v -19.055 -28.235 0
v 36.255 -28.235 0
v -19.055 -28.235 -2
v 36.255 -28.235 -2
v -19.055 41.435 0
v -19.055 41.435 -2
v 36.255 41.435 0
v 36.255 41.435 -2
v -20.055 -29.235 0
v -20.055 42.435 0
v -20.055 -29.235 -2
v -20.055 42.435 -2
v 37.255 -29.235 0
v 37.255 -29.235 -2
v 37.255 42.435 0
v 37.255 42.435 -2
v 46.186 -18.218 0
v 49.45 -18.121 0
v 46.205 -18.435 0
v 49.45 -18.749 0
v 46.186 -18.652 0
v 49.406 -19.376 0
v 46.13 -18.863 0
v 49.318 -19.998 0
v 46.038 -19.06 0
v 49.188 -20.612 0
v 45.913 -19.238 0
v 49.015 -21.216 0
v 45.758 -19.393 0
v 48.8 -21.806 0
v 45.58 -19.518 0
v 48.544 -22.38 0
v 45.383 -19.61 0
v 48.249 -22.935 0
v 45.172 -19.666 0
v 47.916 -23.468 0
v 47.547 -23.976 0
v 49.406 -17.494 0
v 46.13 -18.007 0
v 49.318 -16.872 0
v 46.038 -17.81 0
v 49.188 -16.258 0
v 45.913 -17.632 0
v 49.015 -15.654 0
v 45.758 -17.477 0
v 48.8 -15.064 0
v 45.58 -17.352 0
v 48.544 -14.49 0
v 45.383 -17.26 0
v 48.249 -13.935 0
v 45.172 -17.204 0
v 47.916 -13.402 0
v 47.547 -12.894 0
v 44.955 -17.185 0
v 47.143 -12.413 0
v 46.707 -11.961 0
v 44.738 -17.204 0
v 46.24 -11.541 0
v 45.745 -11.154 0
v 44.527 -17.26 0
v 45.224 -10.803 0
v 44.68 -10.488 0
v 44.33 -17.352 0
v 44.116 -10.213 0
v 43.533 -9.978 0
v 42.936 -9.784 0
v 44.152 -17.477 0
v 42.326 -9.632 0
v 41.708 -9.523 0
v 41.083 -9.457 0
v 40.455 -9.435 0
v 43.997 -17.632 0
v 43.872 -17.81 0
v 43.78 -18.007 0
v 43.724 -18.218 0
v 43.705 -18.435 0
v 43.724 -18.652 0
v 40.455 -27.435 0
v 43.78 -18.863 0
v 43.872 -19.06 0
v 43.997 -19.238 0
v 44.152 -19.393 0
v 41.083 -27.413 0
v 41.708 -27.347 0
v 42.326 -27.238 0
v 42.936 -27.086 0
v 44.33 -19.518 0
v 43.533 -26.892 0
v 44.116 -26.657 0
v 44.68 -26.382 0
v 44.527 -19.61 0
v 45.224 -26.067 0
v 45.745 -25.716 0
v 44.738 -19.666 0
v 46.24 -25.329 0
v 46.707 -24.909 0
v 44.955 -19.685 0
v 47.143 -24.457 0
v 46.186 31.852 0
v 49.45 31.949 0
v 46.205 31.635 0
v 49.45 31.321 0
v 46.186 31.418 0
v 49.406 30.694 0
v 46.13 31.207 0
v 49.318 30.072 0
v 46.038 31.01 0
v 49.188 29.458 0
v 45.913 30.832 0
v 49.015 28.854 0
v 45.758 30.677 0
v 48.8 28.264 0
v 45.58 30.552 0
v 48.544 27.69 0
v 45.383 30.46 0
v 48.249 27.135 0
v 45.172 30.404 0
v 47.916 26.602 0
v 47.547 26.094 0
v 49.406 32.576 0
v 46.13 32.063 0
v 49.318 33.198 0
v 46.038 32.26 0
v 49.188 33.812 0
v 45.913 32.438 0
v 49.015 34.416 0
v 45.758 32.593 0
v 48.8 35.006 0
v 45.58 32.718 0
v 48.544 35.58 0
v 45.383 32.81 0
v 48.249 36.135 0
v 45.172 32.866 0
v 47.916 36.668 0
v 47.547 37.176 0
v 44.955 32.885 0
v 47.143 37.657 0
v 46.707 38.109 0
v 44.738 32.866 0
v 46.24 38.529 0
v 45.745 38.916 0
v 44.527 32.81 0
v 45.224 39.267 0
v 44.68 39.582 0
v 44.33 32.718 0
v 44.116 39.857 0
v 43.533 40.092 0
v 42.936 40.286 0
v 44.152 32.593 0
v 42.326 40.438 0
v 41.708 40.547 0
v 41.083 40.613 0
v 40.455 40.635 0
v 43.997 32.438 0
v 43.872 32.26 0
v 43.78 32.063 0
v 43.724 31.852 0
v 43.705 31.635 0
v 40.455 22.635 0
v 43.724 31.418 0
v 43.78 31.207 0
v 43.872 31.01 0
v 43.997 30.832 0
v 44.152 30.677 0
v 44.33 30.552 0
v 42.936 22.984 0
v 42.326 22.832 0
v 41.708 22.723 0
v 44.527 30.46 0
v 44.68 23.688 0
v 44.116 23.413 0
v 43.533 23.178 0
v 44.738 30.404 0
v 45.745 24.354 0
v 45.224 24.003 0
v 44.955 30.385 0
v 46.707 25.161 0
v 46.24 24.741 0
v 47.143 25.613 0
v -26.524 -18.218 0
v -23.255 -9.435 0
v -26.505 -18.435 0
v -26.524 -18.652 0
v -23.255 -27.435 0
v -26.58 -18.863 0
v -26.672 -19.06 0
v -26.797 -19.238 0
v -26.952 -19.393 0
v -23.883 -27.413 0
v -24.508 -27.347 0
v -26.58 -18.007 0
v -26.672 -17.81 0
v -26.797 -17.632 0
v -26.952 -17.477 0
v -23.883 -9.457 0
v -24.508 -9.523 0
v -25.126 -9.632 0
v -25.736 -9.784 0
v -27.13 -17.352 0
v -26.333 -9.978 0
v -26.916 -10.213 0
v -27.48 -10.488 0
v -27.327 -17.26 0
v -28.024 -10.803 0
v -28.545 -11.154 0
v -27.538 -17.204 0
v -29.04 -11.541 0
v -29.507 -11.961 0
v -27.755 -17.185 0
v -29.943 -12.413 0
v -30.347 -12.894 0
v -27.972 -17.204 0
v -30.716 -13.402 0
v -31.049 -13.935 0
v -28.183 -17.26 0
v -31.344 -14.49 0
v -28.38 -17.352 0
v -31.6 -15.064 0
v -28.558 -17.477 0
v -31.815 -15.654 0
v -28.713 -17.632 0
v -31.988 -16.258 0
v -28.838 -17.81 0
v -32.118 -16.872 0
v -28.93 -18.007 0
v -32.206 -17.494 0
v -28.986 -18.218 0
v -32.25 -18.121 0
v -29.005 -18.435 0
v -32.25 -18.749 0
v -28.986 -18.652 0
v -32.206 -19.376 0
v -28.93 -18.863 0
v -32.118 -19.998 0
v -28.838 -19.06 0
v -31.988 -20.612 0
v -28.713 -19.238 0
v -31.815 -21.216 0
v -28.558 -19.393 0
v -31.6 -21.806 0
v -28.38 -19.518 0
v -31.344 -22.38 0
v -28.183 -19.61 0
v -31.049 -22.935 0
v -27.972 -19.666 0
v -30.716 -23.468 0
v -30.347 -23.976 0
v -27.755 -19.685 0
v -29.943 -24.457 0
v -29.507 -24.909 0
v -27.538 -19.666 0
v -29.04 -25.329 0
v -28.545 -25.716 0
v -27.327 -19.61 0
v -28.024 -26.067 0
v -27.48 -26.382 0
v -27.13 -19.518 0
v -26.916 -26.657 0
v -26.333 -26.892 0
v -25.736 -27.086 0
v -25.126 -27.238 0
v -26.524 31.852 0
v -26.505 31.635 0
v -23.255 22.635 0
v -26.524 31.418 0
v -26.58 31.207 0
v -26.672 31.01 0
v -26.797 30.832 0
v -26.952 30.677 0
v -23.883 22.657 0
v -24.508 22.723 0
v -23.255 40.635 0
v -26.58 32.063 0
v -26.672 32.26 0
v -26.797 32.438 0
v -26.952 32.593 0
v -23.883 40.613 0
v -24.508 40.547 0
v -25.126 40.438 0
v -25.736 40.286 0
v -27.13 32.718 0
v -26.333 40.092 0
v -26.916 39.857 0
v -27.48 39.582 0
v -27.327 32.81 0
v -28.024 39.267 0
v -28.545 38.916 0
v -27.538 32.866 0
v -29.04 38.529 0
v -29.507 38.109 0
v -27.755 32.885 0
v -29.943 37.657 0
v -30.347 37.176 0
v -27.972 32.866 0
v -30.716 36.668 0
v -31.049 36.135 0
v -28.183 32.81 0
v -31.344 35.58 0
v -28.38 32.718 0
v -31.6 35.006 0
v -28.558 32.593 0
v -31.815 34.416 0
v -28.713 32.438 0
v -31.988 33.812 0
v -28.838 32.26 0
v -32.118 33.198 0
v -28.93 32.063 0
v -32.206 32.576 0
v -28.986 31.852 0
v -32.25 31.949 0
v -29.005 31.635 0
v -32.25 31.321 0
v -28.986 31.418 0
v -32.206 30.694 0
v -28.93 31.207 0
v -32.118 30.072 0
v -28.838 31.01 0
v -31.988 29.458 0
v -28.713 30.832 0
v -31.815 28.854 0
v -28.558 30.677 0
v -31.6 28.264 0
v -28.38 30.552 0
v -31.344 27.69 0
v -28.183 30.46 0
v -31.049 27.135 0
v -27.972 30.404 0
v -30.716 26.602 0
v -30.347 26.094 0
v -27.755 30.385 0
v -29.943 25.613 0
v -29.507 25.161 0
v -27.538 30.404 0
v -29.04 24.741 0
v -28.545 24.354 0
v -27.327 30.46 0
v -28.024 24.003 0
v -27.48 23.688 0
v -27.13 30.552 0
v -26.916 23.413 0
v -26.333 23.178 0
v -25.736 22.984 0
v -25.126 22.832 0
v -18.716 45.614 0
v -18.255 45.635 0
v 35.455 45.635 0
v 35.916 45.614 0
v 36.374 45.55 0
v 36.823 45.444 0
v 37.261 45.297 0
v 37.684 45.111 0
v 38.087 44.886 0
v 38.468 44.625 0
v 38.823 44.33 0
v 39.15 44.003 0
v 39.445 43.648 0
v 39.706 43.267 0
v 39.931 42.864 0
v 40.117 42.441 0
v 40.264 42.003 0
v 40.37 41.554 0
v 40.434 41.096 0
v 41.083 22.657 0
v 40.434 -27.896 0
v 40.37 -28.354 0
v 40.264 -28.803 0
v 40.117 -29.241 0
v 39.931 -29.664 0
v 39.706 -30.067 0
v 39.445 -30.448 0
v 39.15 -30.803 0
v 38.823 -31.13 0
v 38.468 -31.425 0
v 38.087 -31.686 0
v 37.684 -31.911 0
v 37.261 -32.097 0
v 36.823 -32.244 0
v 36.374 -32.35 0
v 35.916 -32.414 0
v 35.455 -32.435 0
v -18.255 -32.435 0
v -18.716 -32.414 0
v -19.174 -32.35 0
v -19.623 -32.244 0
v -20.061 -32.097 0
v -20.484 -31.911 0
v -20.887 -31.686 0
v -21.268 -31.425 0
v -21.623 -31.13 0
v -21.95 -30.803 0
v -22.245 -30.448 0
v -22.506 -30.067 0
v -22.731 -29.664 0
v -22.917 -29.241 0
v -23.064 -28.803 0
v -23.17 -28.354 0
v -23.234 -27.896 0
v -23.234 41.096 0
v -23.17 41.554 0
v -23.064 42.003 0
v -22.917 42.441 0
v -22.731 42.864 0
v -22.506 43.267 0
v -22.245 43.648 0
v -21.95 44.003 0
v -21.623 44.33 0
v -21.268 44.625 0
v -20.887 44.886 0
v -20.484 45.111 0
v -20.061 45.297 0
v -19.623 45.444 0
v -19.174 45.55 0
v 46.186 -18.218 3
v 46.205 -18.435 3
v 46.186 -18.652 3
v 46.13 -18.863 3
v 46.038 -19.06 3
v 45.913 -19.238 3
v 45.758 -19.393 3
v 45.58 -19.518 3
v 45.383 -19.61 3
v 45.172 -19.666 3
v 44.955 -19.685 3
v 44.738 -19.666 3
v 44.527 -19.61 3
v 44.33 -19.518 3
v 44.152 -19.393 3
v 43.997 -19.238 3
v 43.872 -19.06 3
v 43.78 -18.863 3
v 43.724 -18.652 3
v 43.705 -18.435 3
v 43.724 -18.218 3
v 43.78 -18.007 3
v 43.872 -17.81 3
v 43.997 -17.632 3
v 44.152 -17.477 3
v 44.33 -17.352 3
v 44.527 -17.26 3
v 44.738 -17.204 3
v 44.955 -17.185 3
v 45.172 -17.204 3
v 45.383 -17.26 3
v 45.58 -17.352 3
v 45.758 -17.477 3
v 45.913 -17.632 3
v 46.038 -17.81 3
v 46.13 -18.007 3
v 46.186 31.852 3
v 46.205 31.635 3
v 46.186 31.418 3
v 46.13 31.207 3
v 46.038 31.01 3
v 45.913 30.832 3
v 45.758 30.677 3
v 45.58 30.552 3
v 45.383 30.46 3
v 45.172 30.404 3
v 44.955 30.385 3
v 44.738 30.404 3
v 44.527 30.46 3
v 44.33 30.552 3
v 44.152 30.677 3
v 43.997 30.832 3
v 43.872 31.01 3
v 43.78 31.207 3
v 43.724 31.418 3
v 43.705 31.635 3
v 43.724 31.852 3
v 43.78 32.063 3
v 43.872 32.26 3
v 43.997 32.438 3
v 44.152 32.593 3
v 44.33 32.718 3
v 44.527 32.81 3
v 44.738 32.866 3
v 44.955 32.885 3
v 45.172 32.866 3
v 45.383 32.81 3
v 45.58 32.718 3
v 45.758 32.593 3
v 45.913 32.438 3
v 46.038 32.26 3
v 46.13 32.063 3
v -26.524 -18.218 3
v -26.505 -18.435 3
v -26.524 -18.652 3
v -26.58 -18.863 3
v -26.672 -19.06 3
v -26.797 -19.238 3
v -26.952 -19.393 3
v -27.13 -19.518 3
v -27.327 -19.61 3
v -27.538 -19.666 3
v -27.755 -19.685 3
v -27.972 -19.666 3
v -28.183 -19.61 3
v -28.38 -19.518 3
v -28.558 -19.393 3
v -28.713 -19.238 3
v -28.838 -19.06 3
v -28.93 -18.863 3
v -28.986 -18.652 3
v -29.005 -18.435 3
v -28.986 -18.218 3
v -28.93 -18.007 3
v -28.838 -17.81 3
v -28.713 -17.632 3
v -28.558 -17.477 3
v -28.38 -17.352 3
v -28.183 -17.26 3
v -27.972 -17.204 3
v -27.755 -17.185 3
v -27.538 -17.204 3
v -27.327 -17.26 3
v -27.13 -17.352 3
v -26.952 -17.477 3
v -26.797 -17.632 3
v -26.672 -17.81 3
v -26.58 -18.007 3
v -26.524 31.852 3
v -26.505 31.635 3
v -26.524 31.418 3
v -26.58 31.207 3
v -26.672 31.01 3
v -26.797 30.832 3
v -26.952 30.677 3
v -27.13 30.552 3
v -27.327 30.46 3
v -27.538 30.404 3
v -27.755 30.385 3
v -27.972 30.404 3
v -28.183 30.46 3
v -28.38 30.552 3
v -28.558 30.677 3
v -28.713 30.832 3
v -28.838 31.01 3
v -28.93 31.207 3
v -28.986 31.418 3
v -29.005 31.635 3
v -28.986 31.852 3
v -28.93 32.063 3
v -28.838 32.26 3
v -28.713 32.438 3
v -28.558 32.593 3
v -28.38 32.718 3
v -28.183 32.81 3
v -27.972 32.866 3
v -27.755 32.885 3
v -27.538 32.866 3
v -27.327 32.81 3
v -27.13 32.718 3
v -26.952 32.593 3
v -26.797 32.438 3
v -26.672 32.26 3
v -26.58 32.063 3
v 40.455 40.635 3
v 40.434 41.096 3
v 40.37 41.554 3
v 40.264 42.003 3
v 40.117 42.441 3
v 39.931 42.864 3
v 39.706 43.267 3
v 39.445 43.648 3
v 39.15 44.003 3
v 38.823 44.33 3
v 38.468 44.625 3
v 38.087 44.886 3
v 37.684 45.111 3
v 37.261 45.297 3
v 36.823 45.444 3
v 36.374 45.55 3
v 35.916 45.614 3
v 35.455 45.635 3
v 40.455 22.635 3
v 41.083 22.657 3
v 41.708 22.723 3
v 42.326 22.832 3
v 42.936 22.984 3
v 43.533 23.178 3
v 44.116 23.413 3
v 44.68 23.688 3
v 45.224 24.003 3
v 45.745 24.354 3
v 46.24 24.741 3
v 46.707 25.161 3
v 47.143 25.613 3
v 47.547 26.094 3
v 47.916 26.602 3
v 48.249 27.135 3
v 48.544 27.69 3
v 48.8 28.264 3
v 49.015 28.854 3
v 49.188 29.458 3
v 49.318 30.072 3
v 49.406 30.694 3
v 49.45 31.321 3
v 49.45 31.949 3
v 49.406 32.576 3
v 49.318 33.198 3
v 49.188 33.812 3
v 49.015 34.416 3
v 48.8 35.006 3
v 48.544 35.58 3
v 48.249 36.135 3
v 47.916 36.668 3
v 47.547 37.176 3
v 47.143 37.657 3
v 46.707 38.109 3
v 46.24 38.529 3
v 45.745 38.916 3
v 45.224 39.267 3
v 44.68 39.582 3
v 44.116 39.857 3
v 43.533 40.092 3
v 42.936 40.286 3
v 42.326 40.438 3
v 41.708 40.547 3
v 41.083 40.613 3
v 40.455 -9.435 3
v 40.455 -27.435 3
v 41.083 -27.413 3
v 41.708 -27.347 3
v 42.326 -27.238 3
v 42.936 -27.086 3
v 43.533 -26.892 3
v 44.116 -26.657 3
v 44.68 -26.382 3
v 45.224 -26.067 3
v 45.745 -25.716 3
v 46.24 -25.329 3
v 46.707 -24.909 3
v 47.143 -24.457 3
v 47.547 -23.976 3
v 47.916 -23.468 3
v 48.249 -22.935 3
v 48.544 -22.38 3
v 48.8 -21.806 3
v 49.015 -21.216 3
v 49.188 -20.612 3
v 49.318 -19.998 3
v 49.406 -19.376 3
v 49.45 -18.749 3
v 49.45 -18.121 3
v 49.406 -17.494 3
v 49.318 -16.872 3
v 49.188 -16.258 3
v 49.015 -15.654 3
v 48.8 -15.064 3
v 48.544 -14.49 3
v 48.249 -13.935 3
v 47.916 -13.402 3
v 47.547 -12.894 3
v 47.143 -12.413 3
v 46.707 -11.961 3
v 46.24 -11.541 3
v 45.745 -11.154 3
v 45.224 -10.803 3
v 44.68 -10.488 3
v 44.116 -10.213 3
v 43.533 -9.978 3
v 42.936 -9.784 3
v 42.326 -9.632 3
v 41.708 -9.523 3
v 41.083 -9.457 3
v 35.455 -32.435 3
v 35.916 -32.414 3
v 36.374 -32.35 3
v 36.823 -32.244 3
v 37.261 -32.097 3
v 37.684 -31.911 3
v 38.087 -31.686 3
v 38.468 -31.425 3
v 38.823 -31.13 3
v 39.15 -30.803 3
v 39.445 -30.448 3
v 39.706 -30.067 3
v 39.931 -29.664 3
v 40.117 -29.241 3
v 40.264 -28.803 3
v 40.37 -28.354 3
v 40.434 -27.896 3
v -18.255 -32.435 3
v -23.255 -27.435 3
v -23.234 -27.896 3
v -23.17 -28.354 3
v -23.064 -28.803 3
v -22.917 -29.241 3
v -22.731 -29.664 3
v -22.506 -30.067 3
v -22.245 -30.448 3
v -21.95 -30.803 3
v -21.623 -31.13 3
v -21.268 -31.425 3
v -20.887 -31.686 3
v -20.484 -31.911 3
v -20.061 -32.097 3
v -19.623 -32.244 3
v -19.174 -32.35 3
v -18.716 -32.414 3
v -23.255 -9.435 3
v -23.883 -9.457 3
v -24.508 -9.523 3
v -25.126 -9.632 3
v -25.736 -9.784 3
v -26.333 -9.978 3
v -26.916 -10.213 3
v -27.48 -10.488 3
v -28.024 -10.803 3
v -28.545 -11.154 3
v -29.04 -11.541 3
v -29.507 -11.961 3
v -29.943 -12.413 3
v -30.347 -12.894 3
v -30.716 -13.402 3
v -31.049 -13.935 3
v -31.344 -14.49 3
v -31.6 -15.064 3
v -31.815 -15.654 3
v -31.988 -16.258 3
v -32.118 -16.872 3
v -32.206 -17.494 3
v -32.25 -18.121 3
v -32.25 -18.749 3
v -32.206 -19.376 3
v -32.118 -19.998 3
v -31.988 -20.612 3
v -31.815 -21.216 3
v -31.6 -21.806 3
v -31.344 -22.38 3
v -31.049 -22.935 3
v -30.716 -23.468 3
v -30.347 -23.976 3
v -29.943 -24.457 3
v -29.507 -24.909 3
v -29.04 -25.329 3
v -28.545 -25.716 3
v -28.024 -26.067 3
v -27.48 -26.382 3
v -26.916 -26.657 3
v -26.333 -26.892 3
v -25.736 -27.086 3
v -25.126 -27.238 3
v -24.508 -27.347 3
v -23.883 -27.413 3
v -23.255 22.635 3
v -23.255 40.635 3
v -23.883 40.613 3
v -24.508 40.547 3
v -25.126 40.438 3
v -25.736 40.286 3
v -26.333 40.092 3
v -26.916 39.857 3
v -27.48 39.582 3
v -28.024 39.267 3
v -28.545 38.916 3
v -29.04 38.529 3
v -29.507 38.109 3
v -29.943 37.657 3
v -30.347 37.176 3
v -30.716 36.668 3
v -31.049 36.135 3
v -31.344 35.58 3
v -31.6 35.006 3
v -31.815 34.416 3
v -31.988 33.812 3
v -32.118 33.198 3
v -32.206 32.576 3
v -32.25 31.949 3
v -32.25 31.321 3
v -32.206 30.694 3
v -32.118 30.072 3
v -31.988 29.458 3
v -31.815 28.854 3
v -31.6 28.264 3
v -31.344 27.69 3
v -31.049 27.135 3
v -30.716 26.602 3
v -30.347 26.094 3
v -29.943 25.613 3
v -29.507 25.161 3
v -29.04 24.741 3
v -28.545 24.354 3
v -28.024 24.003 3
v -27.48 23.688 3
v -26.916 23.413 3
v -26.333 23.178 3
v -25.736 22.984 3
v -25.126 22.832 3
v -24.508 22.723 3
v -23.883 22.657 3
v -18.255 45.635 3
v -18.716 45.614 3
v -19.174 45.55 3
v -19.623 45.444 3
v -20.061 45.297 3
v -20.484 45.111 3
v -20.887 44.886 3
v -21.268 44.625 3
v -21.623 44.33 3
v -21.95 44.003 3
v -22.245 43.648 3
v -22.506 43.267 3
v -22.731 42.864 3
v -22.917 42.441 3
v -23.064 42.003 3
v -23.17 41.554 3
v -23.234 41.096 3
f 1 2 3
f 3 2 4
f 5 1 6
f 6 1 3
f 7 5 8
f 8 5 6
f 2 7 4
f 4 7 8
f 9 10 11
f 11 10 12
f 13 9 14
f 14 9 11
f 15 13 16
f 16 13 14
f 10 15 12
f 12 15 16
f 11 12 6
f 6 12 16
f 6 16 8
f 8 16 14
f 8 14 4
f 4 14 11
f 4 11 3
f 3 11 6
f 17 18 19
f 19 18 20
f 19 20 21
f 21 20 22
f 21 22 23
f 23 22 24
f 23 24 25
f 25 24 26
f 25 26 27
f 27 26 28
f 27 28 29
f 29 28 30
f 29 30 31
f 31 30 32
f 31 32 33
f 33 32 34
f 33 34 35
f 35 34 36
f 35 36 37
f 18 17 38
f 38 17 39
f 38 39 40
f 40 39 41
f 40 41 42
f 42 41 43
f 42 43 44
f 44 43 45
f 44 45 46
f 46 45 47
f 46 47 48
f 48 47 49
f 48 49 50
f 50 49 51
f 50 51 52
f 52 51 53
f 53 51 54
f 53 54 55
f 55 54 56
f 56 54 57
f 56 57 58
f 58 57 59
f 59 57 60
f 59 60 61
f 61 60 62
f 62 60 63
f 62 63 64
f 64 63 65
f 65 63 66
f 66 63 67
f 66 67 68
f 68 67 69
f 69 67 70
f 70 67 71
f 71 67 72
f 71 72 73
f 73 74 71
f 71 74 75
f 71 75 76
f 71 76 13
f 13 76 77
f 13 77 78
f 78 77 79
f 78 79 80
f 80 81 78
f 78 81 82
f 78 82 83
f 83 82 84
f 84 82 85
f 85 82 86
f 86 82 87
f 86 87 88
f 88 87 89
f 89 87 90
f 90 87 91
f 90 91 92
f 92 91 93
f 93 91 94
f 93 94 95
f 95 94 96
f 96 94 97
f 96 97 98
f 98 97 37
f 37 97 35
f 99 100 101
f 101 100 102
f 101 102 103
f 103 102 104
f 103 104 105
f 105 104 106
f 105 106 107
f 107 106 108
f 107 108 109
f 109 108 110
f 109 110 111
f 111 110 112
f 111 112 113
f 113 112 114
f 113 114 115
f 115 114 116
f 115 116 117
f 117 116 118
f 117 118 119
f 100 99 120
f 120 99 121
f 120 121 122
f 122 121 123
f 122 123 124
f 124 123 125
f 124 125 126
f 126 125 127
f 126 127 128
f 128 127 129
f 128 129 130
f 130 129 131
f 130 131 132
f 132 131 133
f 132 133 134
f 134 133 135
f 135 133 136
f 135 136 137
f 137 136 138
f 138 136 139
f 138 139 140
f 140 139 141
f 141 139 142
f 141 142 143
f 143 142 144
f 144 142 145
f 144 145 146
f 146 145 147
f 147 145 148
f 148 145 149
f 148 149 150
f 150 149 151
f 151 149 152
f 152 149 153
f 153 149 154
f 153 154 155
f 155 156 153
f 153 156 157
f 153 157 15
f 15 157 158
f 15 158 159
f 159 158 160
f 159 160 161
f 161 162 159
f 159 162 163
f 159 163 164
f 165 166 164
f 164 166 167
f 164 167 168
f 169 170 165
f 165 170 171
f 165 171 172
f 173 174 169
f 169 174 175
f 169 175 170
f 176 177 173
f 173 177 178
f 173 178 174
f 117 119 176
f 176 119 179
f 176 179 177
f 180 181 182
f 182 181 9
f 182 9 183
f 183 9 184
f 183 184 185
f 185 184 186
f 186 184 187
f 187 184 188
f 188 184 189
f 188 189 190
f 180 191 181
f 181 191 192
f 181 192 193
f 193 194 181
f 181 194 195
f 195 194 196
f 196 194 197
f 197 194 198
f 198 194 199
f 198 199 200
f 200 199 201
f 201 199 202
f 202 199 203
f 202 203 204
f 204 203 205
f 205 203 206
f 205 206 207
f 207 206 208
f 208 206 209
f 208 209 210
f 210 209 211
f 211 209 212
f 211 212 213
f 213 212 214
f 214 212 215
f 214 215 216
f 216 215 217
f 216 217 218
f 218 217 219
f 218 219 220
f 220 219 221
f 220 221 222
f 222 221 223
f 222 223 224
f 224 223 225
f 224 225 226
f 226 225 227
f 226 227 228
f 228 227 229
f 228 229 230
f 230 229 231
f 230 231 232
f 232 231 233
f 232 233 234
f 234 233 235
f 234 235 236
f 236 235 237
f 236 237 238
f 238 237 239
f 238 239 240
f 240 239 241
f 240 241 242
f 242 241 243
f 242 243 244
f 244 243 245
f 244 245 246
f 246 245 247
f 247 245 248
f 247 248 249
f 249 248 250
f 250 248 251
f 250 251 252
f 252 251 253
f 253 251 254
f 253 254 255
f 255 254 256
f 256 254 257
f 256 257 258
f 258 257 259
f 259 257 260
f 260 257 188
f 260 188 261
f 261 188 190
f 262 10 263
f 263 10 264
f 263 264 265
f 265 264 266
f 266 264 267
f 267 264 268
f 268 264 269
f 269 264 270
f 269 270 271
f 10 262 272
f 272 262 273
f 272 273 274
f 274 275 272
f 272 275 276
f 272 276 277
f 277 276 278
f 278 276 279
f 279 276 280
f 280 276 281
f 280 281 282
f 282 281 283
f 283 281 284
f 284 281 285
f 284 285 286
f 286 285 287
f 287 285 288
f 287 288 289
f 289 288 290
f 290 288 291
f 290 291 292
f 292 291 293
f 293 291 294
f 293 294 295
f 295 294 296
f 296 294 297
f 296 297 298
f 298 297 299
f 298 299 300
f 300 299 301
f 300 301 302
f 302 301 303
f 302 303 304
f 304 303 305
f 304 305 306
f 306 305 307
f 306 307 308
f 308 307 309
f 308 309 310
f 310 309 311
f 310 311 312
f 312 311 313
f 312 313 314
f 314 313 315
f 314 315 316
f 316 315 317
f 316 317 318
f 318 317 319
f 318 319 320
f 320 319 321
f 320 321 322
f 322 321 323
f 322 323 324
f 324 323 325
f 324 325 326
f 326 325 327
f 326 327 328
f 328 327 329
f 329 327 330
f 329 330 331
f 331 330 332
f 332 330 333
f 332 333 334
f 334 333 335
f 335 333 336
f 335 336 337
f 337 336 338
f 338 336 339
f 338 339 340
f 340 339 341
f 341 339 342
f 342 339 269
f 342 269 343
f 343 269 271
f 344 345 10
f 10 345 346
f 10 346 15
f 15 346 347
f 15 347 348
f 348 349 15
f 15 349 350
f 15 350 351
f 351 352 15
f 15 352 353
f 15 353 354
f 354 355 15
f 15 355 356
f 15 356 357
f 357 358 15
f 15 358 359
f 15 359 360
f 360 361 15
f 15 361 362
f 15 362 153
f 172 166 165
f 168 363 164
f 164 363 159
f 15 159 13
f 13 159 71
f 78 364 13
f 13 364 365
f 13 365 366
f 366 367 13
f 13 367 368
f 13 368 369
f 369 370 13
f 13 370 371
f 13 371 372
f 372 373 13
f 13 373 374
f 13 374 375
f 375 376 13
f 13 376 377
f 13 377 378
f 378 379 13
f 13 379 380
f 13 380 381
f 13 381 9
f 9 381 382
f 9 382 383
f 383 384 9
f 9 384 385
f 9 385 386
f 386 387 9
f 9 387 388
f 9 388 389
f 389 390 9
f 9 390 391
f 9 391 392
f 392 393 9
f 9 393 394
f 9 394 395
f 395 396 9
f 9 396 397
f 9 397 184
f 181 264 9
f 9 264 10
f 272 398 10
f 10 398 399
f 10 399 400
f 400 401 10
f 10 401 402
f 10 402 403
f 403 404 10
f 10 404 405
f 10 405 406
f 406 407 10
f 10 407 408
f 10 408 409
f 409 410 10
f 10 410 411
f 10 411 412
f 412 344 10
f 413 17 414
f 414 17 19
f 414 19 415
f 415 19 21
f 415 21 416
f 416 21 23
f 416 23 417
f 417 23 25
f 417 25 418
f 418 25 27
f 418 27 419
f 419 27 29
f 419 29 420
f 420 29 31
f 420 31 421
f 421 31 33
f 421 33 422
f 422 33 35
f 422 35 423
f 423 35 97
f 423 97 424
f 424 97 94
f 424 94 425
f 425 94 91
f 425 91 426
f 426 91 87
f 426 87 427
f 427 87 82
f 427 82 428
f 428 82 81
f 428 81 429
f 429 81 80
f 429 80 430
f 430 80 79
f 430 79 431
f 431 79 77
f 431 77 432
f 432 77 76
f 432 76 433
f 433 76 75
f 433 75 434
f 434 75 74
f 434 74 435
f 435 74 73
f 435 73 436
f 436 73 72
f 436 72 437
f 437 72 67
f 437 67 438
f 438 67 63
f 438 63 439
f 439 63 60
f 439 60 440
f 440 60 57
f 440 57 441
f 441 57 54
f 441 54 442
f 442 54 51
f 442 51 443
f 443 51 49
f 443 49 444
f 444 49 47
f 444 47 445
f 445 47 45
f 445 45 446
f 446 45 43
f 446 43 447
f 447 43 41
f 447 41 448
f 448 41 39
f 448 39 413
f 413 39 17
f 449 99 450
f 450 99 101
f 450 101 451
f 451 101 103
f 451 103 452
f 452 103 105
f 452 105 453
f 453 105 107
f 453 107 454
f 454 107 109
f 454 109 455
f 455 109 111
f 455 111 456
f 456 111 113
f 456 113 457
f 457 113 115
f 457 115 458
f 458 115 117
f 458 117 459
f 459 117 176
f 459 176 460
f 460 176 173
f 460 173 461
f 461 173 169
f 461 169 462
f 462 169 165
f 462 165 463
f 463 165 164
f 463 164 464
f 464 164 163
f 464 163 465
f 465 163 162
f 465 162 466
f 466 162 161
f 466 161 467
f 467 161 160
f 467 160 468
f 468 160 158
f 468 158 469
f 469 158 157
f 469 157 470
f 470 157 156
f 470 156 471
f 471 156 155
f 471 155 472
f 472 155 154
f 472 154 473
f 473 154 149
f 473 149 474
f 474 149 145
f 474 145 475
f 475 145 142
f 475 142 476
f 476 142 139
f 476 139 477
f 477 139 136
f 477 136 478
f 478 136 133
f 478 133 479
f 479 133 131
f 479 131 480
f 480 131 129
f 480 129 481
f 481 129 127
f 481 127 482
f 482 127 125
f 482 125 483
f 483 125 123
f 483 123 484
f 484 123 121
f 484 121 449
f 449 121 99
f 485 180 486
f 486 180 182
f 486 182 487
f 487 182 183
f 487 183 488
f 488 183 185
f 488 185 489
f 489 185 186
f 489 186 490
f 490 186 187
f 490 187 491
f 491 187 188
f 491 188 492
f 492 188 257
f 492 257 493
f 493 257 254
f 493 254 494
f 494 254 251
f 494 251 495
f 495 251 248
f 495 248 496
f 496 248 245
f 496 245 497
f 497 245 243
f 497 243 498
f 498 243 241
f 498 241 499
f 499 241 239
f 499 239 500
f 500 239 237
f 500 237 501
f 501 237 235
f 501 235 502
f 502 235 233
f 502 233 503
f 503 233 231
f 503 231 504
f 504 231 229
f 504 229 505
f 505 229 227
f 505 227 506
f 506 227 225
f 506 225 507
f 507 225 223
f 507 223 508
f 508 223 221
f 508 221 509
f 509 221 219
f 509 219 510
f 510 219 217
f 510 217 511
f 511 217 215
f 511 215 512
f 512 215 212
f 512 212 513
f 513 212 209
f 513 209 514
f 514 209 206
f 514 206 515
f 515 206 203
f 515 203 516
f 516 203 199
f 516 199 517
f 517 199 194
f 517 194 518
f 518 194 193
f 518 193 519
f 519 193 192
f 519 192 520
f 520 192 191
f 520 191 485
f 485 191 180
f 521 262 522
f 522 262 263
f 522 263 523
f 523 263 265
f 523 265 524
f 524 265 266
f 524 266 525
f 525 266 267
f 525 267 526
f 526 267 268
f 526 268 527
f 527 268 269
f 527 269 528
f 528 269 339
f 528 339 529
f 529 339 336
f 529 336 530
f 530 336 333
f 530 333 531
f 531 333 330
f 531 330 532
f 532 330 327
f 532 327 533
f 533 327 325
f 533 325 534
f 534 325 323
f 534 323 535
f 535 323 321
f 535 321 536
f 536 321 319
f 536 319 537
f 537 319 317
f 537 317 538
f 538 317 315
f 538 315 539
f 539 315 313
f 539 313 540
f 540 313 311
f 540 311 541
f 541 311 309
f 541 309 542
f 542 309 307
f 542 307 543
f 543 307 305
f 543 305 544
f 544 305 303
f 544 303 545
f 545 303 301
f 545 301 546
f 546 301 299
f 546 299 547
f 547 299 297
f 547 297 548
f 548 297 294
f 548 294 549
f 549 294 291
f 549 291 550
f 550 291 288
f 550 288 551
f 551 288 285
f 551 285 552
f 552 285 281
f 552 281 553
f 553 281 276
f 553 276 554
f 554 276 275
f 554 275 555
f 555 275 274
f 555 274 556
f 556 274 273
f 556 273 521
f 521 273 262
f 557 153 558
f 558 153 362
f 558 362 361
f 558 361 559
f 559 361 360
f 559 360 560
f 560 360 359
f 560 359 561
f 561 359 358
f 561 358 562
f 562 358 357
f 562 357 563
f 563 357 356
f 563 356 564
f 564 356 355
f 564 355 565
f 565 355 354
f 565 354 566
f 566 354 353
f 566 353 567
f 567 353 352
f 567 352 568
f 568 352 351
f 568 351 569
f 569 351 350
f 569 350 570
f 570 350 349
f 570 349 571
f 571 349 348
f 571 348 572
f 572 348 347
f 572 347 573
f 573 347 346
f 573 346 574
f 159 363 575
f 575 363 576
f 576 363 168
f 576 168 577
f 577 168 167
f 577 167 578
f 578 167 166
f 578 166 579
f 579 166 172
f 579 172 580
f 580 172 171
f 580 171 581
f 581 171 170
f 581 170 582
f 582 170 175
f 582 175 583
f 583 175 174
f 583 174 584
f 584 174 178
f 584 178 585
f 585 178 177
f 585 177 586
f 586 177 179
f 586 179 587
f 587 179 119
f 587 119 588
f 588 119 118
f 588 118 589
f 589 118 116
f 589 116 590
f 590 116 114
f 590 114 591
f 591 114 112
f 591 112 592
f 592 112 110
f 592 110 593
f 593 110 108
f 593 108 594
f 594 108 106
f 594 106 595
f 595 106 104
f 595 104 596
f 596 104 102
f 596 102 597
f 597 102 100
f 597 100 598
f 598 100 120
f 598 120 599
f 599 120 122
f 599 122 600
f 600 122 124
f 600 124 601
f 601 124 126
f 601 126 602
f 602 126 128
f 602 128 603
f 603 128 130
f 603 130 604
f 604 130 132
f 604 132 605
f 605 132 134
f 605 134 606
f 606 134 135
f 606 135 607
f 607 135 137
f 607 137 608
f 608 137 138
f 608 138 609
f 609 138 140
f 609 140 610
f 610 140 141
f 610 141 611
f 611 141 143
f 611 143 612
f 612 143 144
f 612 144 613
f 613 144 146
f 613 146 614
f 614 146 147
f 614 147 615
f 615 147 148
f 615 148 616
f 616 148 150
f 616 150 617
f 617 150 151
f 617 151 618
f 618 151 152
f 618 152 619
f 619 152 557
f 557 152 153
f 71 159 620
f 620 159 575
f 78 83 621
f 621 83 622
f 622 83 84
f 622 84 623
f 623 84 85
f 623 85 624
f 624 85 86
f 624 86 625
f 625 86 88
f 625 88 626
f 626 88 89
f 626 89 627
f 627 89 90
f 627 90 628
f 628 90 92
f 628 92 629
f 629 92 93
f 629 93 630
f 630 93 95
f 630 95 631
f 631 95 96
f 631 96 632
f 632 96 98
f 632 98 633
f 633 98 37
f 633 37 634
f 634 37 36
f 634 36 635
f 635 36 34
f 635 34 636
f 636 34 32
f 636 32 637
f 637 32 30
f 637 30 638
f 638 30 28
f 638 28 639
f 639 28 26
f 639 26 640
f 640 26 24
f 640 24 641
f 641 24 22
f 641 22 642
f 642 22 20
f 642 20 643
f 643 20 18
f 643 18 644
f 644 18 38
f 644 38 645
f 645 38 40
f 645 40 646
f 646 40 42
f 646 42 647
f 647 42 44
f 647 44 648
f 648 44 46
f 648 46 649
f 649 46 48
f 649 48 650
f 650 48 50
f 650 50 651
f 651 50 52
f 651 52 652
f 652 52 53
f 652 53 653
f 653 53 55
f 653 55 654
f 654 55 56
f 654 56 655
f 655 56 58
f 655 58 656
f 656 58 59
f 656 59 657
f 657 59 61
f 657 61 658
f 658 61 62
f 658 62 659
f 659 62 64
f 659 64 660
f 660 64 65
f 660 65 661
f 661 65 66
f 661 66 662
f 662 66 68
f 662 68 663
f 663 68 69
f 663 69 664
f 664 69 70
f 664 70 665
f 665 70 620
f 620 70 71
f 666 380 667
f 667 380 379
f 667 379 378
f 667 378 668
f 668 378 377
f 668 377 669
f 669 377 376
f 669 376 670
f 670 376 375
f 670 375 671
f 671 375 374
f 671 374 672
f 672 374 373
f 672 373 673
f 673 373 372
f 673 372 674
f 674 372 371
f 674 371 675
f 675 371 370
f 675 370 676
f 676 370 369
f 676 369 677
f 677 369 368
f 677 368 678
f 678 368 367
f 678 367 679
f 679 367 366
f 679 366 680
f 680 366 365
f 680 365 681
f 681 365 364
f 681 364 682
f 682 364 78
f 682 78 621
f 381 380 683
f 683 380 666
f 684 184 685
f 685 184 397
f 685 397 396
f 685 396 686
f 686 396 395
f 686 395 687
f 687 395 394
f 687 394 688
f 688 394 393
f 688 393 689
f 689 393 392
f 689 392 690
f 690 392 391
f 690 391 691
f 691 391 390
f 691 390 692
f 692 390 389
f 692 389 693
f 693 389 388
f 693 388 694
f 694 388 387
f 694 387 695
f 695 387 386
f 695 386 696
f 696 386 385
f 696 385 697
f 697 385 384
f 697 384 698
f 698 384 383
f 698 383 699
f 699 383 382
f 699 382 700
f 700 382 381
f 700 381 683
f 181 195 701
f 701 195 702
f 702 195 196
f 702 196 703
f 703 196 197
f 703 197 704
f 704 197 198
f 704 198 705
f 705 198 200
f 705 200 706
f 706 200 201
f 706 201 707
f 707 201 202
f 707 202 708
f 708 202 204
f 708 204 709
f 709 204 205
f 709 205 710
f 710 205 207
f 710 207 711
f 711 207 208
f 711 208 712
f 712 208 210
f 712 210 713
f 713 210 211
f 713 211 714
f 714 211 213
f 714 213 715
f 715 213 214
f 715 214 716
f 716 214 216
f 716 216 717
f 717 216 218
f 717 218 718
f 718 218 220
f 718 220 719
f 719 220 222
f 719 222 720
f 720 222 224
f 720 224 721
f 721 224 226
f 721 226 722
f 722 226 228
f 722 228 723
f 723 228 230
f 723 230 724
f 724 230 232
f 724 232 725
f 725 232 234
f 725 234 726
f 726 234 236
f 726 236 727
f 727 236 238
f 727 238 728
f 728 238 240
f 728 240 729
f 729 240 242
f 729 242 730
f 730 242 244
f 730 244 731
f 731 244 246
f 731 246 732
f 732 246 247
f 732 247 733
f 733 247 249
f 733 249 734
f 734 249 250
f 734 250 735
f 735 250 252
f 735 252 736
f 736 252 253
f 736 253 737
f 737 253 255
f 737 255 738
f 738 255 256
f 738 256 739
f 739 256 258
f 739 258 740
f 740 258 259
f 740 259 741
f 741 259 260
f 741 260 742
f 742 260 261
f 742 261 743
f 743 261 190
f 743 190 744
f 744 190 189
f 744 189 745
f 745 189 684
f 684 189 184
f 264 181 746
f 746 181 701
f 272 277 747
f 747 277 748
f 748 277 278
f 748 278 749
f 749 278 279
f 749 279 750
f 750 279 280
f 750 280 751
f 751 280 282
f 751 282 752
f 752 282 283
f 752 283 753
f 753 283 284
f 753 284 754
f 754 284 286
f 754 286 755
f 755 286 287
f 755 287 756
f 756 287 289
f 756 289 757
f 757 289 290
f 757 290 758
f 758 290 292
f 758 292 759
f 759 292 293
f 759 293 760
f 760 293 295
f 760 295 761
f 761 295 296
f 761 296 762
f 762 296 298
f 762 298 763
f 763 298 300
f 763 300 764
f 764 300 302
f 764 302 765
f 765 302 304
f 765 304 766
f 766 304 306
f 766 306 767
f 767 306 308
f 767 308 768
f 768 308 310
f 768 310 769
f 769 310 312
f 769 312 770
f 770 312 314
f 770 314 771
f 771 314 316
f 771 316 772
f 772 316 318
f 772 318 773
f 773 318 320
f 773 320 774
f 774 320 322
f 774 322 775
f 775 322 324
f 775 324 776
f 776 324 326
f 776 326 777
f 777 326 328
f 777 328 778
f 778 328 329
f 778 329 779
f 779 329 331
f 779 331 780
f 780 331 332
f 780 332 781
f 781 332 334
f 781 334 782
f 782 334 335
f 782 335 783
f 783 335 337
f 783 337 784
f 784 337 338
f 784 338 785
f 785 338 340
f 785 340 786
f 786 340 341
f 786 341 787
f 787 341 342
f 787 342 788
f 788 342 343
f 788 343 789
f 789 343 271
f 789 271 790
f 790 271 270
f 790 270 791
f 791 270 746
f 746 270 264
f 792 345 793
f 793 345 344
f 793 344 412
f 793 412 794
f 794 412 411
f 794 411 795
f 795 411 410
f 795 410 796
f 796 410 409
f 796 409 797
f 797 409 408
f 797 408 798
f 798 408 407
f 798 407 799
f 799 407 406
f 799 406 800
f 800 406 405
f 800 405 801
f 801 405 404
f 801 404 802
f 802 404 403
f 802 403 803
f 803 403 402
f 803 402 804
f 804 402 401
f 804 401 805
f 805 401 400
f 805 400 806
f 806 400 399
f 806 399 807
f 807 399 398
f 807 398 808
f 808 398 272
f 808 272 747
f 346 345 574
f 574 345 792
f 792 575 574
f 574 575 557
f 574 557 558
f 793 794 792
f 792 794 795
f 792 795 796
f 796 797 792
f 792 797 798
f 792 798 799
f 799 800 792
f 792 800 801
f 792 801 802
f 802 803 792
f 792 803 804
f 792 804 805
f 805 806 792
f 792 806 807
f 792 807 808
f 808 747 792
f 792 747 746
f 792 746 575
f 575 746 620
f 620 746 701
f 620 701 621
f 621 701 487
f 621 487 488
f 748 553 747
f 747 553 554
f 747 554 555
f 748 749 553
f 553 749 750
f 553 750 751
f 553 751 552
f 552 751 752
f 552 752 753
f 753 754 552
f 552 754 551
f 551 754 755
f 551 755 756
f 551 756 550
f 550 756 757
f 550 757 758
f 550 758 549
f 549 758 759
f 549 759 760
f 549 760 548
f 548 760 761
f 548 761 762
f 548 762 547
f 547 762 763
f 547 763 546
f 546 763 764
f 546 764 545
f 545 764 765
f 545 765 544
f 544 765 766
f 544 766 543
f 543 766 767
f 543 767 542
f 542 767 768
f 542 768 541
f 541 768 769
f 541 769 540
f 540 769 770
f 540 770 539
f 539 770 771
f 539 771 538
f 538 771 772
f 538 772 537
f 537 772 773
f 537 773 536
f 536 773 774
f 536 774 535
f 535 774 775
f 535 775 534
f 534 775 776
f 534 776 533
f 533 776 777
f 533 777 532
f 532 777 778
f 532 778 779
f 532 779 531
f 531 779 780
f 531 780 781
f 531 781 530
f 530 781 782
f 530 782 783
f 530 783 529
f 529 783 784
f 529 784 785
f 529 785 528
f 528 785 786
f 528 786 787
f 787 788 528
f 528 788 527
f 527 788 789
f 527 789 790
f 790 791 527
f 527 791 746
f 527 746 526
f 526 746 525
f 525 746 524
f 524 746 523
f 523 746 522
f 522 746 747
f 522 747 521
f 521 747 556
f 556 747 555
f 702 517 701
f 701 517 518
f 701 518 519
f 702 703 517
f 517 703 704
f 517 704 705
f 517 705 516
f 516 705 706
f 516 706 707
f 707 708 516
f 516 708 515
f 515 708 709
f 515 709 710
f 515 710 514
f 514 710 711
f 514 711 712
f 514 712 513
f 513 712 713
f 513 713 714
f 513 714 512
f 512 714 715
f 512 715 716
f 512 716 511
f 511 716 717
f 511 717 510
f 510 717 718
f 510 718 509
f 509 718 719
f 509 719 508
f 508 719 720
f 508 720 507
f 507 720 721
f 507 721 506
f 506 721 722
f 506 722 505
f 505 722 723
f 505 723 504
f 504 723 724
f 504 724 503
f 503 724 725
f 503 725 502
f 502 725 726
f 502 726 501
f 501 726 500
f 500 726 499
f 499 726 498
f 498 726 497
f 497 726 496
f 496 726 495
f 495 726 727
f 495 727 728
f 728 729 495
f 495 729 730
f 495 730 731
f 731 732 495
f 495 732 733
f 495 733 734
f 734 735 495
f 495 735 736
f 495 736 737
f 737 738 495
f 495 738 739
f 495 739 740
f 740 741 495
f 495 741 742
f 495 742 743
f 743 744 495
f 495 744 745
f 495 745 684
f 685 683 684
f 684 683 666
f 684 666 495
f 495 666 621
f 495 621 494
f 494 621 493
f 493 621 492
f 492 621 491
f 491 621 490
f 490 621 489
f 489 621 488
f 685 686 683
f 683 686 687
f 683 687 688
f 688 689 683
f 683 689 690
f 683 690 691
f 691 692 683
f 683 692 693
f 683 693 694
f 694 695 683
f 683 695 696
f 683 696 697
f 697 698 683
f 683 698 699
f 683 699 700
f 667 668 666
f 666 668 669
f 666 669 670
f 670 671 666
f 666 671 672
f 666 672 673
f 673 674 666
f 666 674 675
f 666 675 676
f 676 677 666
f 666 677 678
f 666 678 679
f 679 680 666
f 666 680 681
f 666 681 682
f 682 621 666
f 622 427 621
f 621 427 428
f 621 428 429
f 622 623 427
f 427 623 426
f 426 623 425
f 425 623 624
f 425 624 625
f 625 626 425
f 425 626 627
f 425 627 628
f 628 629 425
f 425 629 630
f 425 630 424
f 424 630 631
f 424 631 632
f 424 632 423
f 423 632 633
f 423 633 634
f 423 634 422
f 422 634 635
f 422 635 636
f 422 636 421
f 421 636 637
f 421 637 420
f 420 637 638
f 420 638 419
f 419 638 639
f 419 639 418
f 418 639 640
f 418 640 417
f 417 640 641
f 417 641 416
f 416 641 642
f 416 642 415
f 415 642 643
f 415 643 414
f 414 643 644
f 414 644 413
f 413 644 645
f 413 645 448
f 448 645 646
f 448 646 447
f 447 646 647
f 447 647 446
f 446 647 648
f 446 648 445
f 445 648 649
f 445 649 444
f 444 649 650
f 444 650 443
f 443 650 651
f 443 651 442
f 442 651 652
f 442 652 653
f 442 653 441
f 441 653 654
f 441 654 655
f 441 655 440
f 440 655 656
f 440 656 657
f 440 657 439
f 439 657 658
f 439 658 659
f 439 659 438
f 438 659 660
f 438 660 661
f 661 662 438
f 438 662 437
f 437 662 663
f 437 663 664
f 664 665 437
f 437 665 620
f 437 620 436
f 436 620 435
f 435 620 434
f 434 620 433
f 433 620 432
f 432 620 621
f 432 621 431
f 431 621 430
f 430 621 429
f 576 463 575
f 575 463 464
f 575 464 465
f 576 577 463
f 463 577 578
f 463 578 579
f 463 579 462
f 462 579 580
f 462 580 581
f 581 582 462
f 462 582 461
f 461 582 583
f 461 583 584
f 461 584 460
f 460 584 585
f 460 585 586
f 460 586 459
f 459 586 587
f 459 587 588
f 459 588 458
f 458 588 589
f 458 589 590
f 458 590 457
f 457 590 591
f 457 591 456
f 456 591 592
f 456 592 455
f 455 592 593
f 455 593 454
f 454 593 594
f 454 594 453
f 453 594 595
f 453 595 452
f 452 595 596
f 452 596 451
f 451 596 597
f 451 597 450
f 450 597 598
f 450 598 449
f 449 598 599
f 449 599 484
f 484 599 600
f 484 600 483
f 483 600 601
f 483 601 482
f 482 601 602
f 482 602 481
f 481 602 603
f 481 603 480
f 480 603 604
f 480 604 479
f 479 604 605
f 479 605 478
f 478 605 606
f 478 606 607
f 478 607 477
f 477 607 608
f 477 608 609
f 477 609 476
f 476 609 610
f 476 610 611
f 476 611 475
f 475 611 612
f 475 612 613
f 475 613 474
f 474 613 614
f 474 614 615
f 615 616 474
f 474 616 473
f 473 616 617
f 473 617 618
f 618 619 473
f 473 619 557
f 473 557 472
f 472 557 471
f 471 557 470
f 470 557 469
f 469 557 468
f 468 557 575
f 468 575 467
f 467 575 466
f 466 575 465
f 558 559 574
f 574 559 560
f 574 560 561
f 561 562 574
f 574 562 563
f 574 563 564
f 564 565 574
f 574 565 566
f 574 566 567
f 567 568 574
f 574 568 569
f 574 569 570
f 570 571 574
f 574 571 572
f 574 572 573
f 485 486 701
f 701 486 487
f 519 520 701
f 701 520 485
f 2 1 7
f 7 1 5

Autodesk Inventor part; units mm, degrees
ref_plane "YZ Plane" through (0, 0, 0) normal (1, 0, 0) x (0, 1, 0)
ref_plane "XZ Plane" through (0, 0, 0) normal (0, 1, 0) x (-1, 0, 0)
ref_plane "XY Plane" through (0, 0, 0) normal (0, 0, 1) x (1, 0, 0)
sketch "Sketch3" plane through (0, 0, 0) normal (0, 0, 1) x (1, 0, 0)
  line L0 (-23.255, 22.635) -> (-23.255, -9.435) projected
  line L1 (-18.255, -32.435) -> (-8.145, -32.435) projected
  line L2 (-8.145, -32.435) -> (-8.145, -29.435) projected
  line L3 (-8.145, -29.435) -> (-20.255, -29.435) projected
  line L4 (-20.255, -29.435) -> (-20.255, 42.635) projected
  line L5 (-20.255, 42.635) -> (-8.145, 42.635) projected
  line L6 (-8.145, 42.635) -> (-8.145, 45.635) projected
  line L7 (-8.145, 45.635) -> (-18.255, 45.635) projected
  arc A0 (-23.255, 40.635) -> (-23.255, 22.635) centre (-23.255, 31.635) ccw projected
  circle A1 centre (-27.755, 31.635) radius 1.25 projected
  line L8 (-8.145, 45.635) -> (-18.255, 45.635) projected
  line L9 (-18.255, -32.435) -> (-8.145, -32.435) projected
  line L10 (-8.145, -29.435) -> (7.855, -29.435) projected
  line L11 (-8.145, -32.435) -> (-8.145, -29.435) projected
  line L12 (7.855, -32.435) -> (-8.145, -32.435) projected
  line L13 (7.855, -32.435) -> (7.855, -29.435) projected
  line L14 (7.855, 42.635) -> (-8.145, 42.635) projected
  line L15 (7.855, 45.635) -> (7.855, 42.635) projected
  line L16 (-8.145, 45.635) -> (7.855, 45.635) projected
  line L17 (-8.145, 45.635) -> (-8.145, 42.635) projected
  line L18 (-23.255, 22.635) -> (-23.255, -9.435) projected
  arc A2 (-23.255, -27.435) -> (-18.255, -32.435) centre (-18.255, -27.435) ccw projected
  line L19 (-8.145, -32.435) -> (-8.145, -29.435) projected
  line L20 (-8.145, -29.435) -> (-20.255, -29.435) projected
  line L21 (-20.255, -29.435) -> (-20.255, 42.635) projected
  line L22 (-20.255, 42.635) -> (-8.145, 42.635) projected
  line L23 (-8.145, 42.635) -> (-8.145, 45.635) projected
  arc A3 (-18.255, 45.635) -> (-23.255, 40.635) centre (-18.255, 40.635) ccw projected
  arc A4 (-23.255, 40.635) -> (-23.255, 22.635) centre (-23.255, 31.635) ccw projected
  circle A5 centre (-27.755, 31.635) radius 1.25 projected
  arc A6 (-23.255, -27.435) -> (-18.255, -32.435) centre (-18.255, -27.435) ccw projected
  arc A7 (-18.255, 45.635) -> (-23.255, 40.635) centre (-18.255, 40.635) ccw projected
  line L24 (40.455, -9.435) -> (40.455, 22.635) projected
  arc A8 (40.455, 40.635) -> (35.455, 45.635) centre (35.455, 40.635) ccw projected
  line L25 (35.455, 45.635) -> (7.855, 45.635) projected
  line L26 (7.855, 45.635) -> (7.855, 42.635) projected
  line L27 (7.855, 42.635) -> (37.455, 42.635) projected
  line L28 (37.455, 42.635) -> (37.455, -29.435) projected
  line L29 (37.455, -29.435) -> (7.855, -29.435) projected
  line L30 (7.855, -29.435) -> (7.855, -32.435) projected
  line L31 (7.855, -32.435) -> (35.455, -32.435) projected
  arc A9 (35.455, -32.435) -> (40.455, -27.435) centre (35.455, -27.435) ccw projected
  arc A10 (40.455, -27.435) -> (40.455, -9.435) centre (40.455, -18.435) ccw projected
  circle A11 centre (44.955, -18.435) radius 1.25 projected
  circle A12 centre (-27.755, -18.435) radius 1.25 projected
  arc A13 (-23.255, -9.435) -> (-23.255, -27.435) centre (-23.255, -18.435) ccw projected
  circle A14 centre (-27.755, -18.435) radius 1.25 projected
  arc A15 (-23.255, -9.435) -> (-23.255, -27.435) centre (-23.255, -18.435) ccw projected
  circle A16 centre (44.955, 31.635) radius 1.25 projected
  arc A17 (40.455, 22.635) -> (40.455, 40.635) centre (40.455, 31.635) ccw projected
  point P0 (0, 0)
extrude "Extrusion3" add sketch "Sketch3" along normal blind 3
sketch "Sketch5" plane through (0, 0, 0) normal (0, 0, -1) x (-1, 0, 0)
  line L0 (20.255, -29.435) -> (20.255, 42.635) projected
  line L1 (8.145, -29.435) -> (20.255, -29.435) projected
  line L2 (-37.455, -29.435) -> (-7.855, -29.435) projected
  line L3 (-37.455, 42.635) -> (-37.455, -29.435) projected
  line L4 (-7.855, 42.635) -> (-37.455, 42.635) projected
  line L5 (20.255, 42.635) -> (8.145, 42.635) projected
  line L6 (-7.855, 42.635) -> (8.145, 42.635)
  line L7 (-7.855, -29.435) -> (8.145, -29.435)
  line L8 (20.055, -29.235) -> (-37.255, -29.235)
  line L9 (-37.255, -29.235) -> (-37.255, 42.435)
  line L10 (-37.255, 42.435) -> (-7.855, 42.435)
  line L11 (-7.855, 42.435) -> (8.145, 42.435)
  line L12 (8.145, 42.435) -> (20.055, 42.435)
  line L13 (20.055, 42.435) -> (20.055, -29.235)
  line L14 (-36.255, -28.235) -> (19.055, -28.235)
  line L15 (19.055, -28.235) -> (19.055, 41.435)
  line L16 (19.055, 41.435) -> (-36.255, 41.435)
  line L17 (-36.255, 41.435) -> (-36.255, -28.235)
  point P0 (0, 0)
  dimension "d8" = 0.2
  dimension "d9" = 1
extrude "Extrusion4" add sketch "Sketch5" along normal blind 2 contours L8 L9 L10 L11 L12 L13
properties part number "lid_arm"
